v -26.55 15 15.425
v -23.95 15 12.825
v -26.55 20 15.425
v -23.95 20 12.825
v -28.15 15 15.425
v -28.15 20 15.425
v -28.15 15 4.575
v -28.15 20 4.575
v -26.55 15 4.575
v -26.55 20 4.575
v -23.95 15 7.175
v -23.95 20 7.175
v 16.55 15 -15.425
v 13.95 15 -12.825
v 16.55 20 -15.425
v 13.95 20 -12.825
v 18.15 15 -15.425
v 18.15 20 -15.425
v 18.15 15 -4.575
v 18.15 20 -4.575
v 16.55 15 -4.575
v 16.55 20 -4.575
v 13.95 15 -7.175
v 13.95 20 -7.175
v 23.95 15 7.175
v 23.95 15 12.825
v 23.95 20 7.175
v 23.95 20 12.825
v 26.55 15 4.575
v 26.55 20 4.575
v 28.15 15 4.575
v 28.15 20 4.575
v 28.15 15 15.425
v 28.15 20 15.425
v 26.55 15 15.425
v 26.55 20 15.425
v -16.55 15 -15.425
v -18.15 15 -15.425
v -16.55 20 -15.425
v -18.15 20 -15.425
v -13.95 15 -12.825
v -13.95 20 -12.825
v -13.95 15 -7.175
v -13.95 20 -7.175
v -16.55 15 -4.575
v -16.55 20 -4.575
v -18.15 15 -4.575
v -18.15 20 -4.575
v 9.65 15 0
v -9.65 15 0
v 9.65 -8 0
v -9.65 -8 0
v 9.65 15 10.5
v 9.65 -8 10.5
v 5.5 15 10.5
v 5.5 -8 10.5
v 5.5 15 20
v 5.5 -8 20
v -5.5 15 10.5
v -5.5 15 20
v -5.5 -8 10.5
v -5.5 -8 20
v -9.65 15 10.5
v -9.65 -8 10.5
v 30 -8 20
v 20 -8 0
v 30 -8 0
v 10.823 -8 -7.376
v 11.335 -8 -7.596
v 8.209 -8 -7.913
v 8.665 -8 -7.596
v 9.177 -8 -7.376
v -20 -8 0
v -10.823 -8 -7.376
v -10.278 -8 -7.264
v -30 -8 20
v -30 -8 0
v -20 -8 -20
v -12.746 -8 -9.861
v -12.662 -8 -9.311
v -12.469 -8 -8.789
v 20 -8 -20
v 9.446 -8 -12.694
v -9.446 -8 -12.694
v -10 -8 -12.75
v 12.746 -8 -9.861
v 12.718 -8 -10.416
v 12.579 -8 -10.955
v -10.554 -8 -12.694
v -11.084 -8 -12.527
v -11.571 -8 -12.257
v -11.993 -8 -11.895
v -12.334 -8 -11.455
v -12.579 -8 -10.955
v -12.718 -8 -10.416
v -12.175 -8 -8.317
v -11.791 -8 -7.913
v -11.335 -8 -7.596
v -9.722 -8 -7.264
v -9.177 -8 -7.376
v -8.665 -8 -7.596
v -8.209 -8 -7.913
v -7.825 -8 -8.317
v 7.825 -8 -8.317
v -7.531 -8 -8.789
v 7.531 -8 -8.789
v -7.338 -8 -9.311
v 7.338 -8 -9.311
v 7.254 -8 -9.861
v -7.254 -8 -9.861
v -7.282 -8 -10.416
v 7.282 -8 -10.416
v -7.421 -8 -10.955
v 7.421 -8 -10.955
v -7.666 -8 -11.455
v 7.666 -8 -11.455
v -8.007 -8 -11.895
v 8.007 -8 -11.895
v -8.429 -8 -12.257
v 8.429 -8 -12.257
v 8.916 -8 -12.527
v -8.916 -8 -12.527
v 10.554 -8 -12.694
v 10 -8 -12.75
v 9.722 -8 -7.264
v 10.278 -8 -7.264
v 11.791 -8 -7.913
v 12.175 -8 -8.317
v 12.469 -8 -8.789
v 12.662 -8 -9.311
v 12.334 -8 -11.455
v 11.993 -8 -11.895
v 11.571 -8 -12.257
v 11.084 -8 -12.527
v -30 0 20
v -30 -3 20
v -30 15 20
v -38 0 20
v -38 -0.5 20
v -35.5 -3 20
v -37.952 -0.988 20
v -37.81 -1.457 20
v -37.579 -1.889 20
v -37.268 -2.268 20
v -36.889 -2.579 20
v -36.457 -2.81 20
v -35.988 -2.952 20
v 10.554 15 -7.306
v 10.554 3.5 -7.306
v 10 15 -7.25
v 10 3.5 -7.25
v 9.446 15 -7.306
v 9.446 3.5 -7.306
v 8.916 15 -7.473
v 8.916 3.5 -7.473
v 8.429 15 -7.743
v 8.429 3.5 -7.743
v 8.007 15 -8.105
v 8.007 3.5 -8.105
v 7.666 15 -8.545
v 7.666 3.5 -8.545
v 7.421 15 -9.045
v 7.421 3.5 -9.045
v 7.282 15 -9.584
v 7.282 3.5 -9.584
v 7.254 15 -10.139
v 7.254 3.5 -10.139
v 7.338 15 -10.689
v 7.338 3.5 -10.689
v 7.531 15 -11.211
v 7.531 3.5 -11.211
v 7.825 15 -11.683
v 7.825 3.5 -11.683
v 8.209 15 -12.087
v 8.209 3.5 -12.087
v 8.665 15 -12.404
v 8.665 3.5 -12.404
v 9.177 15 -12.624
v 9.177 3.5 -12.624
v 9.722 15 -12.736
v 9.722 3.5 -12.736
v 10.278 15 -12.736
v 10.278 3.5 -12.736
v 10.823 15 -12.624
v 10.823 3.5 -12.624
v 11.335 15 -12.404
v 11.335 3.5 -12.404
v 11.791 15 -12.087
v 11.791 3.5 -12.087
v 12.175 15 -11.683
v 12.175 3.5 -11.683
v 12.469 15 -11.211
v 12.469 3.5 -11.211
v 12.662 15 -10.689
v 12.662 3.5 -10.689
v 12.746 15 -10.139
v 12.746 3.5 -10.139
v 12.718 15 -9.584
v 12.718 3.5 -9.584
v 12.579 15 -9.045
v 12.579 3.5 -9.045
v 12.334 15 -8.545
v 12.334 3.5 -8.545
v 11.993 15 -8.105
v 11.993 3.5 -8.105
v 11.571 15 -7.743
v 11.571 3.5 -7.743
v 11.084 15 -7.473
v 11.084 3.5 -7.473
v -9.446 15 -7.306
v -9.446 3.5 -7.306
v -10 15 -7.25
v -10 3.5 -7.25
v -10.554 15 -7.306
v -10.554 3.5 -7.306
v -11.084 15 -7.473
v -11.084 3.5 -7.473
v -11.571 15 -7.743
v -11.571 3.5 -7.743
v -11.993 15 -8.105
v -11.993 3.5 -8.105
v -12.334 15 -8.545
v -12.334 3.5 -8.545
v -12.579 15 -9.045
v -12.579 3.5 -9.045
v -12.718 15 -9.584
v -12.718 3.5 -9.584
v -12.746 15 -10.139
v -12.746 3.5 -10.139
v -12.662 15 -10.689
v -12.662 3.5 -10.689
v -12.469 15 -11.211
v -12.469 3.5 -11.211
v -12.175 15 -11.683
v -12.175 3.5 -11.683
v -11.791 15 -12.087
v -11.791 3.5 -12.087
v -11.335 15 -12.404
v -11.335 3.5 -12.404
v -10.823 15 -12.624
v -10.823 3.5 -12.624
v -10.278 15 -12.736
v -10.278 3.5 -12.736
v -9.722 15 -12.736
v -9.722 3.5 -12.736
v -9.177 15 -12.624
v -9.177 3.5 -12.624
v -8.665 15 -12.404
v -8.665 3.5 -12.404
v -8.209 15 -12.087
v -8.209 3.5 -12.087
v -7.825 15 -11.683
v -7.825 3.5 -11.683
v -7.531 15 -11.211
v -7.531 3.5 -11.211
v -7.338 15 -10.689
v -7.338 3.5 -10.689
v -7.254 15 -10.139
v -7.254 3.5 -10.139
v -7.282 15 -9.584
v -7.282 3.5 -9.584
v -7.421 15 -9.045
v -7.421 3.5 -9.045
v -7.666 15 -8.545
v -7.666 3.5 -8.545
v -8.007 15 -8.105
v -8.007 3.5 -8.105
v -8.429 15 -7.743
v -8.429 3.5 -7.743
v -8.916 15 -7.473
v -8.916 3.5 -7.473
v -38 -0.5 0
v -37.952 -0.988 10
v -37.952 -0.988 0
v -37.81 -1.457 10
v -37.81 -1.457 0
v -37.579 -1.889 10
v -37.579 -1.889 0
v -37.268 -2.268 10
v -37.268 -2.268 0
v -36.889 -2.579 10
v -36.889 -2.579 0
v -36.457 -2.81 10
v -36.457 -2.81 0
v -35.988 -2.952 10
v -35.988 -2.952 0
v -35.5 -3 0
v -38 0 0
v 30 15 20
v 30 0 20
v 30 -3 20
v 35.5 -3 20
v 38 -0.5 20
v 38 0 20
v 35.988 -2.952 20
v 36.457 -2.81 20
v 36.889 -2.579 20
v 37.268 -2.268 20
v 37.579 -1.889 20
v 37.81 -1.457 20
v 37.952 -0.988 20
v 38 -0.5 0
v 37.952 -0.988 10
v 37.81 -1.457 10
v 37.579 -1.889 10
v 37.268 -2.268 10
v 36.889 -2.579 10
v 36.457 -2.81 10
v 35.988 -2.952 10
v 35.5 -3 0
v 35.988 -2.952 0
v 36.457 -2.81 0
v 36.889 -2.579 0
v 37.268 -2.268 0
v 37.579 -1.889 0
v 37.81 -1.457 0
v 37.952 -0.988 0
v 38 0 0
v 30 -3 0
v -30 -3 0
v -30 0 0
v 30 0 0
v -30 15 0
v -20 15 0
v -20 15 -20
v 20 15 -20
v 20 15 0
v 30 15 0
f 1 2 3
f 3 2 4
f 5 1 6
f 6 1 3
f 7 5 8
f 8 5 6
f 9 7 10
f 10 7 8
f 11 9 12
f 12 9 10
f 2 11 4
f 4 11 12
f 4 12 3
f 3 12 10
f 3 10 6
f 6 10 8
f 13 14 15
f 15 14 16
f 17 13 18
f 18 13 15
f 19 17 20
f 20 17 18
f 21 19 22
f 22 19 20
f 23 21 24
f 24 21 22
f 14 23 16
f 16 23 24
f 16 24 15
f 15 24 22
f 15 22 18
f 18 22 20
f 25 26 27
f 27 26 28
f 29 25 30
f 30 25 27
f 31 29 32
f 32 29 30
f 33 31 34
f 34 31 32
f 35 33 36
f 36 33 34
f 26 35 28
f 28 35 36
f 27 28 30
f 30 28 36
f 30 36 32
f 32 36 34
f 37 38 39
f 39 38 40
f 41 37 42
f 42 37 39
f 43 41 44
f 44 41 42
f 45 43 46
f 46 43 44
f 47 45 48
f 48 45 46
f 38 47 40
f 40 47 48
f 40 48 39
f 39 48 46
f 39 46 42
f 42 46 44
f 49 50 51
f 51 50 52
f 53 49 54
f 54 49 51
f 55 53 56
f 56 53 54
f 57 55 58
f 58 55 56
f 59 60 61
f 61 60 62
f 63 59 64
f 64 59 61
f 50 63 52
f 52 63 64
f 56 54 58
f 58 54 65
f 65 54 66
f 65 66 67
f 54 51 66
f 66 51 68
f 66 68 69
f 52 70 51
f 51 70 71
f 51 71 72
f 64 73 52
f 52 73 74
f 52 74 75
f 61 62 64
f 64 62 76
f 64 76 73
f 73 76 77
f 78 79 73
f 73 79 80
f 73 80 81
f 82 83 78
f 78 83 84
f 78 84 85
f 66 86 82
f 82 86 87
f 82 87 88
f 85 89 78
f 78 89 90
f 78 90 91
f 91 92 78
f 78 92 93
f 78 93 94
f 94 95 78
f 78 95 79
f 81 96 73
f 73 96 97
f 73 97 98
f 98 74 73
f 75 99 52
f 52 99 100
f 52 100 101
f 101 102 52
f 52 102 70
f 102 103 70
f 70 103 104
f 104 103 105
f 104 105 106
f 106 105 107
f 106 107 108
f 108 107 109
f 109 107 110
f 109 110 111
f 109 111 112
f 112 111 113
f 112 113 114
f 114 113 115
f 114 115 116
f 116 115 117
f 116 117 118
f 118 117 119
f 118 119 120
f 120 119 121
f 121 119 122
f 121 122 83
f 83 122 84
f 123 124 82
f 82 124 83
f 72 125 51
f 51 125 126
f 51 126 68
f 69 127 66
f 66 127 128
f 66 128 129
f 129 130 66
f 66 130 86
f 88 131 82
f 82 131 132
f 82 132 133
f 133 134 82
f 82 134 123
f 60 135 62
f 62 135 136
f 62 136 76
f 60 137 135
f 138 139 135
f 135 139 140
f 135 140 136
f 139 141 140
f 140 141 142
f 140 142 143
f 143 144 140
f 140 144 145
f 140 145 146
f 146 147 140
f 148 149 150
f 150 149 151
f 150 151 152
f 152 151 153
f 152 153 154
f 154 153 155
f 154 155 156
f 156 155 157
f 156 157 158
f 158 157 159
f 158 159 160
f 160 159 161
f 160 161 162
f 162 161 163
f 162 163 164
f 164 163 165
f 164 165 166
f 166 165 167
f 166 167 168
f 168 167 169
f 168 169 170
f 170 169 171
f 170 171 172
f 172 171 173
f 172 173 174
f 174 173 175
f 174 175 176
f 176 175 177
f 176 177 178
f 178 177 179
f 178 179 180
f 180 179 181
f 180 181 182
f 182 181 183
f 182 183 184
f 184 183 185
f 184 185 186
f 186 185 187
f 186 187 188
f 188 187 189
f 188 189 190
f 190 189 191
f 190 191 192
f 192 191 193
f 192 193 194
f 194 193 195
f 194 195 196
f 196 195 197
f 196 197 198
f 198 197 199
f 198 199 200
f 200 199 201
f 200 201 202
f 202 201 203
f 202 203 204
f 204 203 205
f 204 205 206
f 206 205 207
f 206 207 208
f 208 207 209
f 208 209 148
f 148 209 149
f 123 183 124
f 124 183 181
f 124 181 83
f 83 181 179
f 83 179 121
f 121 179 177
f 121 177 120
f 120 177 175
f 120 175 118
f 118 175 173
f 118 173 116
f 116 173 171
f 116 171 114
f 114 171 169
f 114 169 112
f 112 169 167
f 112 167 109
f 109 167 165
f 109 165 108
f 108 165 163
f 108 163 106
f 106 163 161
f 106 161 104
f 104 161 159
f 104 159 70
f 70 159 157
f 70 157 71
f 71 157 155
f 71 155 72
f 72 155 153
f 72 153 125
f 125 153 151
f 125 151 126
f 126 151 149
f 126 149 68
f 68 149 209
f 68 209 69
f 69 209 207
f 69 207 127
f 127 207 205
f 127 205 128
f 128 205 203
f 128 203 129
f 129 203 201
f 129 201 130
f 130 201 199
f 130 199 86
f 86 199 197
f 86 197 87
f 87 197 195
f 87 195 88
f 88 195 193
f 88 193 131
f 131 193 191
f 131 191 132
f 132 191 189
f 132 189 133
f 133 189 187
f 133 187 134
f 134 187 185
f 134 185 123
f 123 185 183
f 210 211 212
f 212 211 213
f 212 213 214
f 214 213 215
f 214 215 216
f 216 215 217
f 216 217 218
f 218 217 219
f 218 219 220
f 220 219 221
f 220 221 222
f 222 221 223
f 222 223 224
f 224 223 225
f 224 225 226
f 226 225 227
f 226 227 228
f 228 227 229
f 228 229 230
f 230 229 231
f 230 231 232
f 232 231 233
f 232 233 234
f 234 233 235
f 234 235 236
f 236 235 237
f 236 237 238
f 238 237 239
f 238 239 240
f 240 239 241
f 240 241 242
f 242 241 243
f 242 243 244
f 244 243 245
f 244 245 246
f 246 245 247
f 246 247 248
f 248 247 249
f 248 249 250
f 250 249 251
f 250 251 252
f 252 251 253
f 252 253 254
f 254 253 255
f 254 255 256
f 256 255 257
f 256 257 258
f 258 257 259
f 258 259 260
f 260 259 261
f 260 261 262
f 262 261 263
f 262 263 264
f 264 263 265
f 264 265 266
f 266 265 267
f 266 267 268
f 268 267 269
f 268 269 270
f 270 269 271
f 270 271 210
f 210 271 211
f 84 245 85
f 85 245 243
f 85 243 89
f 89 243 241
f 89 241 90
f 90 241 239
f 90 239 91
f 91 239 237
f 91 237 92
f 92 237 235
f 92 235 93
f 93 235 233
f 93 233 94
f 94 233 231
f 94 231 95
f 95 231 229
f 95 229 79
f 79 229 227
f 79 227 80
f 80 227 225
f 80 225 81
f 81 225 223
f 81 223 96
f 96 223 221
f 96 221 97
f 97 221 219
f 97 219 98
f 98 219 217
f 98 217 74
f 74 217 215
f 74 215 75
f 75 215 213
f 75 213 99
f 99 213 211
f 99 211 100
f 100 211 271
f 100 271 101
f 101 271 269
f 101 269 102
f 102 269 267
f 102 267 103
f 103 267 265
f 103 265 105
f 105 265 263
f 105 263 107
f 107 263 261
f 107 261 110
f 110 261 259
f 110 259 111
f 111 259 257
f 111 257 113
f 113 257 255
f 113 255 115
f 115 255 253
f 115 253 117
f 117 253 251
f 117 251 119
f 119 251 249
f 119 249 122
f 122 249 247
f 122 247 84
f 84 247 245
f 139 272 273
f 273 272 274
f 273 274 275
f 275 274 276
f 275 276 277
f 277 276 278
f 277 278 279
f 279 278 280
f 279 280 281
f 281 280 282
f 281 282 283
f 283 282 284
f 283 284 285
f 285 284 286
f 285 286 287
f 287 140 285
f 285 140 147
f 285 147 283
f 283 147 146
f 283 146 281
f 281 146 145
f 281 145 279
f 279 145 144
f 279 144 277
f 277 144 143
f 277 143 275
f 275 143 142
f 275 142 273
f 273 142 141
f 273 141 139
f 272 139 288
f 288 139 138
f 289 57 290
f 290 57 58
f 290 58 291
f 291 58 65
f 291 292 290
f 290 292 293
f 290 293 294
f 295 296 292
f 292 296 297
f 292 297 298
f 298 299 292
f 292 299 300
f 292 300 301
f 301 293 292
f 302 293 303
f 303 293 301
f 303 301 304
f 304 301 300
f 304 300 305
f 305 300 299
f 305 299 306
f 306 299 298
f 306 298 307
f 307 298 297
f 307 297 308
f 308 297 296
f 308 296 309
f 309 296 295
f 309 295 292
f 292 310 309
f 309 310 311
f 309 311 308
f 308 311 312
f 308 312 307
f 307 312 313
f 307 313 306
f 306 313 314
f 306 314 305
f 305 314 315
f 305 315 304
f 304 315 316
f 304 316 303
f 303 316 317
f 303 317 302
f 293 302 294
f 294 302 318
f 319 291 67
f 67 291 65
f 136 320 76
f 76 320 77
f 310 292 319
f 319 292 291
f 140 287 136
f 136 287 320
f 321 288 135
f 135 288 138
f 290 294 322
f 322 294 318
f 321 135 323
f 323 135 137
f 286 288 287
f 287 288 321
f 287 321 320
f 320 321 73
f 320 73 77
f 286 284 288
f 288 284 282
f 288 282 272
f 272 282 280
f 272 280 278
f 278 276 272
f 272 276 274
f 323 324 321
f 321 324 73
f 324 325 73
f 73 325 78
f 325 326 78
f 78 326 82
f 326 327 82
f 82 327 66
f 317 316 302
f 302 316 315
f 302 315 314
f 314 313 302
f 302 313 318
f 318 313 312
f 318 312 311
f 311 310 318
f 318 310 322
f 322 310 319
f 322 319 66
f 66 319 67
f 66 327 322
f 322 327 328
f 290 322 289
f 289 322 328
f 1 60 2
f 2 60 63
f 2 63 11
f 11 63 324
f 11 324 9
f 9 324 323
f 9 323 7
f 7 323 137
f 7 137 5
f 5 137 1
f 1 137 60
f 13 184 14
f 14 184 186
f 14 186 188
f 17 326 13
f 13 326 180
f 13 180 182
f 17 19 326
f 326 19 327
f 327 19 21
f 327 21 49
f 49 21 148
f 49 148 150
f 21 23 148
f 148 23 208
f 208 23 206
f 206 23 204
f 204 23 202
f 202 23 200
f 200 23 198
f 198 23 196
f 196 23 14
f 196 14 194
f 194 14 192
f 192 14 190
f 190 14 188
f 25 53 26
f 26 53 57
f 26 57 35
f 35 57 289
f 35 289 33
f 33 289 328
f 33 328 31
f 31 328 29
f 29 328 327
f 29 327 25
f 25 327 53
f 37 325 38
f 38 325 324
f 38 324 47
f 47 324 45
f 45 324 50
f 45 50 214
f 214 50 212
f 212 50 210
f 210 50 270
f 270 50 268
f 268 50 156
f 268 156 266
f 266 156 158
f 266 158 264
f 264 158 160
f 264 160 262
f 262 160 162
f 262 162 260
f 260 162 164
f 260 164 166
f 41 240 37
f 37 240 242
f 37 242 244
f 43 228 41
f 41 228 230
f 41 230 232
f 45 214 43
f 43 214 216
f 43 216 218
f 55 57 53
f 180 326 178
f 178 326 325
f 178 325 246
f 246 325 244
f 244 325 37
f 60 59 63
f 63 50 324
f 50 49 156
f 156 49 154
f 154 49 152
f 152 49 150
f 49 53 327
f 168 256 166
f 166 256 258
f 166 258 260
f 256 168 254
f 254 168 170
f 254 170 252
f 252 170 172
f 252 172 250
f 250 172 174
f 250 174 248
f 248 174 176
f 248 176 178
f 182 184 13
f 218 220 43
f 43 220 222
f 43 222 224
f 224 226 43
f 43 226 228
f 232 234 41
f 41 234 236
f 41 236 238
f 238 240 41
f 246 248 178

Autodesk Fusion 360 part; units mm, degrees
sketch "Sketch1" plane through (0, 0, 0) normal (0, 1, 0) x (1, 0, 0)
  line L0 (0, 0) -> (0, -20) construction
  line L1 (0, -20) -> (30, -20)
  line L2 (30, -20) -> (30, 0)
  line L3 (30, 0) -> (20, 0)
  line L4 (20, 0) -> (20, 20)
  line L5 (20, 20) -> (0, 20)
  line L6 (-20, 0) -> (-20, 20)
  line L7 (-30, 0) -> (-20, 0)
  line L8 (-30, -20) -> (-30, 0)
  line L9 (-20, 20) -> (0, 20)
  line L10 (0, -20) -> (-30, -20)
  dimension "d1" = 20
  dimension "d2" = 30
extrude "Extrude1" add sketch "Sketch1" along normal blind 15
sketch "Sketch2" plane through (0, 0, 0) normal (0, -1, 0) x (1, 0, 0)
  line L0 (30, 0) -> (30, 20)
  line L1 (30, 20) -> (-30, 20)
  line L2 (-30, 20) -> (-30, 0)
  line L3 (-30, 0) -> (-20, 0)
  line L4 (-20, 0) -> (-20, -20)
  line L5 (-20, -20) -> (20, -20)
  line L6 (20, -20) -> (20, 0)
  line L7 (20, 0) -> (30, 0)
  line L8 (30, 20) -> (38, 20)
  line L9 (38, 20) -> (38, 0)
  line L10 (38, 0) -> (30, 0)
  line L11 (30, 0) -> (30, 20)
  line L12 (-30, 20) -> (-38, 20)
  line L13 (-38, 20) -> (-38, 0)
  line L14 (-38, 0) -> (-30, 0)
  line L15 (-30, 0) -> (-30, 20)
  dimension "d5" = 8
  dimension "d6" = 8
  dimension "d7" = 20
extrude "Extrude2" add sketch "Sketch2" along normal blind 3
sketch "Sketch3" plane through (0, -3, 0) normal (0, -1, 0) x (1, 0, 0)
  line L0 (38, 20) -> (-38, 20)
  line L1 (-38, 20) -> (-38, 0)
  line L2 (-38, 0) -> (-20, 0)
  line L3 (-20, 0) -> (-20, -20)
  line L4 (-20, -20) -> (20, -20)
  line L5 (20, -20) -> (20, 0)
  line L6 (20, 0) -> (38, 0)
  line L7 (38, 0) -> (38, 20)
  line L8 (-30, 20) -> (-30, 0)
  line L9 (0, 20) -> (-30, 20)
  line L10 (30, 20) -> (30, 0)
  line L11 (0, 20) -> (30, 20)
  line L12 (30, 0) -> (20, 0)
  line L13 (20, 0) -> (20, -20)
  line L14 (20, -20) -> (0, -20)
  line L15 (-20, -20) -> (0, -20)
  line L16 (-20, 0) -> (-20, -20)
  line L17 (-30, 0) -> (-20, 0)
extrude "Extrude3" add sketch "Sketch3" along normal blind 5 contours L0 L2 L3 L4 L5 L6 L8 L9 L10 L11 L12 L13 L14 L15 L16 L17
fillet "Fillet1" radius 2.5 2 edges at (38, -3, 10) (-38, -3, 10)
sketch "Sketch4" plane through (0, -8, 0) normal (0, -1, 0) x (1, 0, 0)
  line L0 (30, 20) -> (-30, 20)
  line L1 (-30, 20) -> (-30, 0)
  line L2 (-30, 0) -> (-20, 0)
  line L3 (-20, 0) -> (-20, -20)
  line L4 (-20, -20) -> (20, -20)
  line L5 (20, -20) -> (20, 0)
  line L6 (20, 0) -> (30, 0)
  line L7 (30, 0) -> (30, 20)
  line L8 (-20, -10) -> (20, -10) construction
  line L9 (20, 0) -> (20, -20)
  line L10 (-5.5, 20) -> (0, 20)
  line L11 (0, 20) -> (0, 13.9)
  line L12 (0, 13.9) -> (-5.5, 13.9)
  line L13 (-5.5, 13.9) -> (-5.5, 20)
  line L14 (0, 13.9) -> (5.5, 13.9)
  line L15 (5.5, 13.9) -> (5.5, 20)
  line L16 (5.5, 20) -> (0, 20)
  line L17 (14.8575, 20) -> (-15.1425, 20)
  line L18 (-15.1425, 20) -> (-15.1425, 10.5)
  line L19 (-15.1425, 10.5) -> (14.8575, 10.5)
  line L20 (14.8575, 10.5) -> (14.8575, 20)
  line L21 (14.8575, 20) -> (-15.1425, 10.5) construction
  line L22 (-15.1425, 20) -> (14.8575, 10.5) construction
  line L23 (9.65, 0) -> (-9.65, 0)
  line L24 (-9.65, 0) -> (-9.65, 10.5)
  line L25 (-9.65, 10.5) -> (9.65, 10.5)
  line L26 (9.65, 10.5) -> (9.65, 0)
  line L27 (9.65, 0) -> (-9.65, 10.5) construction
  line L28 (-9.65, 0) -> (9.65, 10.5) construction
  line L29 (5.5, 13.9) -> (14.8575, 13.9)
  line L30 (-15.1425, 13.9) -> (-5.5, 13.9)
  line L31 (-5.5, 13.9) -> (-5.5, 10.5)
  line L32 (5.5, 13.9) -> (5.5, 10.5)
  point P0 (-10, -10)
  point P1 (10, -10)
  point P2 (-0.1425, 15.25)
  point P3 (0, 5.25)
  dimension "d14" = 10
  dimension "d15" = 10
  dimension "d19" = 5.5
  dimension "d20" = 6.1
  dimension "d21" = 24.5
  dimension "d37" = 30
  dimension "d38" = 9.5
  dimension "d39" = 19.3
  dimension "d40" = 10.5
hole "Hole1" at (10, -8, -10) at (-10, -8, -10) direction (0, 1, 0) diameter 5.5 end through all
extrude "Extrude4" cut sketch "Sketch4" against normal through all contours L0 L11 L14 L15 L16 L17 | L0 L10 L11 L12 L13 L17 | L12 L14 L19 L25 L31 L32 | L19 L23 L24 L25 L26
sketch "Sketch5" plane through (0, 15, 0) normal (0, 1, 0) x (-1, 0, 0)
  line L0 (-5.5, 20) -> (-30, 20)
  line L1 (-30, 20) -> (-30, 0)
  line L2 (-30, 0) -> (-20, 0)
  line L3 (-20, 0) -> (-20, -20)
  line L4 (-20, -20) -> (20, -20)
  line L5 (20, -20) -> (20, 0)
  line L6 (20, 0) -> (30, 0)
  line L7 (30, 0) -> (30, 20)
  line L8 (30, 20) -> (5.5, 20)
  circle A0 centre (-10, -10) radius 2.75
  circle A1 centre (10, -10) radius 2.75
  line L9 (0, 13.9) -> (0, -20) construction
  line L10 (-20, -10) -> (20, -10) construction
  line L11 (-16.55, -15.425) -> (-18.15, -15.425)
  line L12 (-18.15, -15.425) -> (-18.15, -4.575)
  line L13 (-18.15, -4.575) -> (-16.55, -4.575)
  line L14 (-16.55, -4.575) -> (-16.55, -15.425)
  line L15 (-16.55, -15.425) -> (-18.15, -4.575) construction
  line L16 (-18.15, -15.425) -> (-16.55, -4.575) construction
  line L17 (-13.95, -12.825) -> (-16.55, -12.825)
  line L18 (-16.55, -12.825) -> (-16.55, -7.175)
  line L19 (-16.55, -7.175) -> (-13.95, -7.175)
  line L20 (-13.95, -7.175) -> (-13.95, -12.825)
  line L21 (-13.95, -12.825) -> (-16.55, -7.175) construction
  line L22 (-16.55, -12.825) -> (-13.95, -7.175) construction
  line L23 (-16.55, -4.575) -> (-13.95, -7.175)
  line L24 (-13.95, -12.825) -> (-16.55, -15.425)
  line L25 (18.15, -4.575) -> (16.55, -4.575)
  line L26 (16.55, -4.575) -> (13.95, -7.175)
  line L27 (13.95, -7.175) -> (13.95, -12.825)
  line L28 (13.95, -12.825) -> (16.55, -15.425)
  line L29 (16.55, -15.425) -> (18.15, -15.425)
  line L30 (18.15, -15.425) -> (18.15, -4.575)
  line L31 (-30, 10) -> (30, 10) construction
  line L32 (-26.55, 4.575) -> (-28.15, 4.575)
  line L33 (-28.15, 4.575) -> (-28.15, 15.425)
  line L34 (-28.15, 15.425) -> (-26.55, 15.425)
  line L35 (-26.55, 15.425) -> (-26.55, 4.575)
  line L36 (-26.55, 4.575) -> (-28.15, 15.425) construction
  line L37 (-28.15, 4.575) -> (-26.55, 15.425) construction
  line L38 (-23.95, 7.175) -> (-26.55, 7.175)
  line L39 (-26.55, 7.175) -> (-26.55, 12.825)
  line L40 (-26.55, 12.825) -> (-23.95, 12.825)
  line L41 (-23.95, 12.825) -> (-23.95, 7.175)
  line L42 (-23.95, 7.175) -> (-26.55, 12.825) construction
  line L43 (-26.55, 7.175) -> (-23.95, 12.825) construction
  line L44 (-23.95, 12.825) -> (-26.55, 15.425)
  line L45 (-23.95, 7.175) -> (-26.55, 4.575)
  line L46 (23.95, 7.175) -> (26.55, 4.575)
  line L47 (23.95, 12.825) -> (23.95, 7.175)
  line L48 (23.95, 12.825) -> (26.55, 15.425)
  line L49 (28.15, 15.425) -> (26.55, 15.425)
  line L50 (28.15, 4.575) -> (28.15, 15.425)
  line L51 (26.55, 4.575) -> (28.15, 4.575)
  line L52 (5.5, 10.5) -> (9.65, 10.5)
  line L53 (9.65, 10.5) -> (9.65, 0)
  line L54 (9.65, 0) -> (-9.65, 0)
  line L55 (-9.65, 0) -> (-9.65, 10.5)
  line L56 (-9.65, 10.5) -> (-5.5, 10.5)
  line L57 (-5.5, 10.5) -> (-5.5, 20)
  line L58 (5.5, 20) -> (5.5, 10.5)
  point P0 (-17.35, -10)
  point P1 (-15.25, -10)
  point P2 (-27.35, 10)
  point P3 (-25.25, 10)
  dimension "d24" = 1.6
  dimension "d25" = 10.85
  dimension "d26" = 1.85
  dimension "d28" = 5.65
  dimension "d31" = 45
  dimension "d32" = 1.6
  dimension "d33" = 10.85
  dimension "d34" = 5.65
  dimension "d35" = 45
  dimension "d36" = 1.85
extrude "Extrude5" add sketch "Sketch5" along normal blind 5 contours L11 L12 L13 L14 L18 | L14 L17 L24 | L14 L17 L18 L19 L20 | L14 L19 L23 | L25 L26 L27 L28 L29 L30 | L32 L33 L34 L35 L39 | L35 L38 L45 | L35 L38 L39 L40 L41 | L35 L40 L44 | L46 L47 L48 L49 L50 L51
